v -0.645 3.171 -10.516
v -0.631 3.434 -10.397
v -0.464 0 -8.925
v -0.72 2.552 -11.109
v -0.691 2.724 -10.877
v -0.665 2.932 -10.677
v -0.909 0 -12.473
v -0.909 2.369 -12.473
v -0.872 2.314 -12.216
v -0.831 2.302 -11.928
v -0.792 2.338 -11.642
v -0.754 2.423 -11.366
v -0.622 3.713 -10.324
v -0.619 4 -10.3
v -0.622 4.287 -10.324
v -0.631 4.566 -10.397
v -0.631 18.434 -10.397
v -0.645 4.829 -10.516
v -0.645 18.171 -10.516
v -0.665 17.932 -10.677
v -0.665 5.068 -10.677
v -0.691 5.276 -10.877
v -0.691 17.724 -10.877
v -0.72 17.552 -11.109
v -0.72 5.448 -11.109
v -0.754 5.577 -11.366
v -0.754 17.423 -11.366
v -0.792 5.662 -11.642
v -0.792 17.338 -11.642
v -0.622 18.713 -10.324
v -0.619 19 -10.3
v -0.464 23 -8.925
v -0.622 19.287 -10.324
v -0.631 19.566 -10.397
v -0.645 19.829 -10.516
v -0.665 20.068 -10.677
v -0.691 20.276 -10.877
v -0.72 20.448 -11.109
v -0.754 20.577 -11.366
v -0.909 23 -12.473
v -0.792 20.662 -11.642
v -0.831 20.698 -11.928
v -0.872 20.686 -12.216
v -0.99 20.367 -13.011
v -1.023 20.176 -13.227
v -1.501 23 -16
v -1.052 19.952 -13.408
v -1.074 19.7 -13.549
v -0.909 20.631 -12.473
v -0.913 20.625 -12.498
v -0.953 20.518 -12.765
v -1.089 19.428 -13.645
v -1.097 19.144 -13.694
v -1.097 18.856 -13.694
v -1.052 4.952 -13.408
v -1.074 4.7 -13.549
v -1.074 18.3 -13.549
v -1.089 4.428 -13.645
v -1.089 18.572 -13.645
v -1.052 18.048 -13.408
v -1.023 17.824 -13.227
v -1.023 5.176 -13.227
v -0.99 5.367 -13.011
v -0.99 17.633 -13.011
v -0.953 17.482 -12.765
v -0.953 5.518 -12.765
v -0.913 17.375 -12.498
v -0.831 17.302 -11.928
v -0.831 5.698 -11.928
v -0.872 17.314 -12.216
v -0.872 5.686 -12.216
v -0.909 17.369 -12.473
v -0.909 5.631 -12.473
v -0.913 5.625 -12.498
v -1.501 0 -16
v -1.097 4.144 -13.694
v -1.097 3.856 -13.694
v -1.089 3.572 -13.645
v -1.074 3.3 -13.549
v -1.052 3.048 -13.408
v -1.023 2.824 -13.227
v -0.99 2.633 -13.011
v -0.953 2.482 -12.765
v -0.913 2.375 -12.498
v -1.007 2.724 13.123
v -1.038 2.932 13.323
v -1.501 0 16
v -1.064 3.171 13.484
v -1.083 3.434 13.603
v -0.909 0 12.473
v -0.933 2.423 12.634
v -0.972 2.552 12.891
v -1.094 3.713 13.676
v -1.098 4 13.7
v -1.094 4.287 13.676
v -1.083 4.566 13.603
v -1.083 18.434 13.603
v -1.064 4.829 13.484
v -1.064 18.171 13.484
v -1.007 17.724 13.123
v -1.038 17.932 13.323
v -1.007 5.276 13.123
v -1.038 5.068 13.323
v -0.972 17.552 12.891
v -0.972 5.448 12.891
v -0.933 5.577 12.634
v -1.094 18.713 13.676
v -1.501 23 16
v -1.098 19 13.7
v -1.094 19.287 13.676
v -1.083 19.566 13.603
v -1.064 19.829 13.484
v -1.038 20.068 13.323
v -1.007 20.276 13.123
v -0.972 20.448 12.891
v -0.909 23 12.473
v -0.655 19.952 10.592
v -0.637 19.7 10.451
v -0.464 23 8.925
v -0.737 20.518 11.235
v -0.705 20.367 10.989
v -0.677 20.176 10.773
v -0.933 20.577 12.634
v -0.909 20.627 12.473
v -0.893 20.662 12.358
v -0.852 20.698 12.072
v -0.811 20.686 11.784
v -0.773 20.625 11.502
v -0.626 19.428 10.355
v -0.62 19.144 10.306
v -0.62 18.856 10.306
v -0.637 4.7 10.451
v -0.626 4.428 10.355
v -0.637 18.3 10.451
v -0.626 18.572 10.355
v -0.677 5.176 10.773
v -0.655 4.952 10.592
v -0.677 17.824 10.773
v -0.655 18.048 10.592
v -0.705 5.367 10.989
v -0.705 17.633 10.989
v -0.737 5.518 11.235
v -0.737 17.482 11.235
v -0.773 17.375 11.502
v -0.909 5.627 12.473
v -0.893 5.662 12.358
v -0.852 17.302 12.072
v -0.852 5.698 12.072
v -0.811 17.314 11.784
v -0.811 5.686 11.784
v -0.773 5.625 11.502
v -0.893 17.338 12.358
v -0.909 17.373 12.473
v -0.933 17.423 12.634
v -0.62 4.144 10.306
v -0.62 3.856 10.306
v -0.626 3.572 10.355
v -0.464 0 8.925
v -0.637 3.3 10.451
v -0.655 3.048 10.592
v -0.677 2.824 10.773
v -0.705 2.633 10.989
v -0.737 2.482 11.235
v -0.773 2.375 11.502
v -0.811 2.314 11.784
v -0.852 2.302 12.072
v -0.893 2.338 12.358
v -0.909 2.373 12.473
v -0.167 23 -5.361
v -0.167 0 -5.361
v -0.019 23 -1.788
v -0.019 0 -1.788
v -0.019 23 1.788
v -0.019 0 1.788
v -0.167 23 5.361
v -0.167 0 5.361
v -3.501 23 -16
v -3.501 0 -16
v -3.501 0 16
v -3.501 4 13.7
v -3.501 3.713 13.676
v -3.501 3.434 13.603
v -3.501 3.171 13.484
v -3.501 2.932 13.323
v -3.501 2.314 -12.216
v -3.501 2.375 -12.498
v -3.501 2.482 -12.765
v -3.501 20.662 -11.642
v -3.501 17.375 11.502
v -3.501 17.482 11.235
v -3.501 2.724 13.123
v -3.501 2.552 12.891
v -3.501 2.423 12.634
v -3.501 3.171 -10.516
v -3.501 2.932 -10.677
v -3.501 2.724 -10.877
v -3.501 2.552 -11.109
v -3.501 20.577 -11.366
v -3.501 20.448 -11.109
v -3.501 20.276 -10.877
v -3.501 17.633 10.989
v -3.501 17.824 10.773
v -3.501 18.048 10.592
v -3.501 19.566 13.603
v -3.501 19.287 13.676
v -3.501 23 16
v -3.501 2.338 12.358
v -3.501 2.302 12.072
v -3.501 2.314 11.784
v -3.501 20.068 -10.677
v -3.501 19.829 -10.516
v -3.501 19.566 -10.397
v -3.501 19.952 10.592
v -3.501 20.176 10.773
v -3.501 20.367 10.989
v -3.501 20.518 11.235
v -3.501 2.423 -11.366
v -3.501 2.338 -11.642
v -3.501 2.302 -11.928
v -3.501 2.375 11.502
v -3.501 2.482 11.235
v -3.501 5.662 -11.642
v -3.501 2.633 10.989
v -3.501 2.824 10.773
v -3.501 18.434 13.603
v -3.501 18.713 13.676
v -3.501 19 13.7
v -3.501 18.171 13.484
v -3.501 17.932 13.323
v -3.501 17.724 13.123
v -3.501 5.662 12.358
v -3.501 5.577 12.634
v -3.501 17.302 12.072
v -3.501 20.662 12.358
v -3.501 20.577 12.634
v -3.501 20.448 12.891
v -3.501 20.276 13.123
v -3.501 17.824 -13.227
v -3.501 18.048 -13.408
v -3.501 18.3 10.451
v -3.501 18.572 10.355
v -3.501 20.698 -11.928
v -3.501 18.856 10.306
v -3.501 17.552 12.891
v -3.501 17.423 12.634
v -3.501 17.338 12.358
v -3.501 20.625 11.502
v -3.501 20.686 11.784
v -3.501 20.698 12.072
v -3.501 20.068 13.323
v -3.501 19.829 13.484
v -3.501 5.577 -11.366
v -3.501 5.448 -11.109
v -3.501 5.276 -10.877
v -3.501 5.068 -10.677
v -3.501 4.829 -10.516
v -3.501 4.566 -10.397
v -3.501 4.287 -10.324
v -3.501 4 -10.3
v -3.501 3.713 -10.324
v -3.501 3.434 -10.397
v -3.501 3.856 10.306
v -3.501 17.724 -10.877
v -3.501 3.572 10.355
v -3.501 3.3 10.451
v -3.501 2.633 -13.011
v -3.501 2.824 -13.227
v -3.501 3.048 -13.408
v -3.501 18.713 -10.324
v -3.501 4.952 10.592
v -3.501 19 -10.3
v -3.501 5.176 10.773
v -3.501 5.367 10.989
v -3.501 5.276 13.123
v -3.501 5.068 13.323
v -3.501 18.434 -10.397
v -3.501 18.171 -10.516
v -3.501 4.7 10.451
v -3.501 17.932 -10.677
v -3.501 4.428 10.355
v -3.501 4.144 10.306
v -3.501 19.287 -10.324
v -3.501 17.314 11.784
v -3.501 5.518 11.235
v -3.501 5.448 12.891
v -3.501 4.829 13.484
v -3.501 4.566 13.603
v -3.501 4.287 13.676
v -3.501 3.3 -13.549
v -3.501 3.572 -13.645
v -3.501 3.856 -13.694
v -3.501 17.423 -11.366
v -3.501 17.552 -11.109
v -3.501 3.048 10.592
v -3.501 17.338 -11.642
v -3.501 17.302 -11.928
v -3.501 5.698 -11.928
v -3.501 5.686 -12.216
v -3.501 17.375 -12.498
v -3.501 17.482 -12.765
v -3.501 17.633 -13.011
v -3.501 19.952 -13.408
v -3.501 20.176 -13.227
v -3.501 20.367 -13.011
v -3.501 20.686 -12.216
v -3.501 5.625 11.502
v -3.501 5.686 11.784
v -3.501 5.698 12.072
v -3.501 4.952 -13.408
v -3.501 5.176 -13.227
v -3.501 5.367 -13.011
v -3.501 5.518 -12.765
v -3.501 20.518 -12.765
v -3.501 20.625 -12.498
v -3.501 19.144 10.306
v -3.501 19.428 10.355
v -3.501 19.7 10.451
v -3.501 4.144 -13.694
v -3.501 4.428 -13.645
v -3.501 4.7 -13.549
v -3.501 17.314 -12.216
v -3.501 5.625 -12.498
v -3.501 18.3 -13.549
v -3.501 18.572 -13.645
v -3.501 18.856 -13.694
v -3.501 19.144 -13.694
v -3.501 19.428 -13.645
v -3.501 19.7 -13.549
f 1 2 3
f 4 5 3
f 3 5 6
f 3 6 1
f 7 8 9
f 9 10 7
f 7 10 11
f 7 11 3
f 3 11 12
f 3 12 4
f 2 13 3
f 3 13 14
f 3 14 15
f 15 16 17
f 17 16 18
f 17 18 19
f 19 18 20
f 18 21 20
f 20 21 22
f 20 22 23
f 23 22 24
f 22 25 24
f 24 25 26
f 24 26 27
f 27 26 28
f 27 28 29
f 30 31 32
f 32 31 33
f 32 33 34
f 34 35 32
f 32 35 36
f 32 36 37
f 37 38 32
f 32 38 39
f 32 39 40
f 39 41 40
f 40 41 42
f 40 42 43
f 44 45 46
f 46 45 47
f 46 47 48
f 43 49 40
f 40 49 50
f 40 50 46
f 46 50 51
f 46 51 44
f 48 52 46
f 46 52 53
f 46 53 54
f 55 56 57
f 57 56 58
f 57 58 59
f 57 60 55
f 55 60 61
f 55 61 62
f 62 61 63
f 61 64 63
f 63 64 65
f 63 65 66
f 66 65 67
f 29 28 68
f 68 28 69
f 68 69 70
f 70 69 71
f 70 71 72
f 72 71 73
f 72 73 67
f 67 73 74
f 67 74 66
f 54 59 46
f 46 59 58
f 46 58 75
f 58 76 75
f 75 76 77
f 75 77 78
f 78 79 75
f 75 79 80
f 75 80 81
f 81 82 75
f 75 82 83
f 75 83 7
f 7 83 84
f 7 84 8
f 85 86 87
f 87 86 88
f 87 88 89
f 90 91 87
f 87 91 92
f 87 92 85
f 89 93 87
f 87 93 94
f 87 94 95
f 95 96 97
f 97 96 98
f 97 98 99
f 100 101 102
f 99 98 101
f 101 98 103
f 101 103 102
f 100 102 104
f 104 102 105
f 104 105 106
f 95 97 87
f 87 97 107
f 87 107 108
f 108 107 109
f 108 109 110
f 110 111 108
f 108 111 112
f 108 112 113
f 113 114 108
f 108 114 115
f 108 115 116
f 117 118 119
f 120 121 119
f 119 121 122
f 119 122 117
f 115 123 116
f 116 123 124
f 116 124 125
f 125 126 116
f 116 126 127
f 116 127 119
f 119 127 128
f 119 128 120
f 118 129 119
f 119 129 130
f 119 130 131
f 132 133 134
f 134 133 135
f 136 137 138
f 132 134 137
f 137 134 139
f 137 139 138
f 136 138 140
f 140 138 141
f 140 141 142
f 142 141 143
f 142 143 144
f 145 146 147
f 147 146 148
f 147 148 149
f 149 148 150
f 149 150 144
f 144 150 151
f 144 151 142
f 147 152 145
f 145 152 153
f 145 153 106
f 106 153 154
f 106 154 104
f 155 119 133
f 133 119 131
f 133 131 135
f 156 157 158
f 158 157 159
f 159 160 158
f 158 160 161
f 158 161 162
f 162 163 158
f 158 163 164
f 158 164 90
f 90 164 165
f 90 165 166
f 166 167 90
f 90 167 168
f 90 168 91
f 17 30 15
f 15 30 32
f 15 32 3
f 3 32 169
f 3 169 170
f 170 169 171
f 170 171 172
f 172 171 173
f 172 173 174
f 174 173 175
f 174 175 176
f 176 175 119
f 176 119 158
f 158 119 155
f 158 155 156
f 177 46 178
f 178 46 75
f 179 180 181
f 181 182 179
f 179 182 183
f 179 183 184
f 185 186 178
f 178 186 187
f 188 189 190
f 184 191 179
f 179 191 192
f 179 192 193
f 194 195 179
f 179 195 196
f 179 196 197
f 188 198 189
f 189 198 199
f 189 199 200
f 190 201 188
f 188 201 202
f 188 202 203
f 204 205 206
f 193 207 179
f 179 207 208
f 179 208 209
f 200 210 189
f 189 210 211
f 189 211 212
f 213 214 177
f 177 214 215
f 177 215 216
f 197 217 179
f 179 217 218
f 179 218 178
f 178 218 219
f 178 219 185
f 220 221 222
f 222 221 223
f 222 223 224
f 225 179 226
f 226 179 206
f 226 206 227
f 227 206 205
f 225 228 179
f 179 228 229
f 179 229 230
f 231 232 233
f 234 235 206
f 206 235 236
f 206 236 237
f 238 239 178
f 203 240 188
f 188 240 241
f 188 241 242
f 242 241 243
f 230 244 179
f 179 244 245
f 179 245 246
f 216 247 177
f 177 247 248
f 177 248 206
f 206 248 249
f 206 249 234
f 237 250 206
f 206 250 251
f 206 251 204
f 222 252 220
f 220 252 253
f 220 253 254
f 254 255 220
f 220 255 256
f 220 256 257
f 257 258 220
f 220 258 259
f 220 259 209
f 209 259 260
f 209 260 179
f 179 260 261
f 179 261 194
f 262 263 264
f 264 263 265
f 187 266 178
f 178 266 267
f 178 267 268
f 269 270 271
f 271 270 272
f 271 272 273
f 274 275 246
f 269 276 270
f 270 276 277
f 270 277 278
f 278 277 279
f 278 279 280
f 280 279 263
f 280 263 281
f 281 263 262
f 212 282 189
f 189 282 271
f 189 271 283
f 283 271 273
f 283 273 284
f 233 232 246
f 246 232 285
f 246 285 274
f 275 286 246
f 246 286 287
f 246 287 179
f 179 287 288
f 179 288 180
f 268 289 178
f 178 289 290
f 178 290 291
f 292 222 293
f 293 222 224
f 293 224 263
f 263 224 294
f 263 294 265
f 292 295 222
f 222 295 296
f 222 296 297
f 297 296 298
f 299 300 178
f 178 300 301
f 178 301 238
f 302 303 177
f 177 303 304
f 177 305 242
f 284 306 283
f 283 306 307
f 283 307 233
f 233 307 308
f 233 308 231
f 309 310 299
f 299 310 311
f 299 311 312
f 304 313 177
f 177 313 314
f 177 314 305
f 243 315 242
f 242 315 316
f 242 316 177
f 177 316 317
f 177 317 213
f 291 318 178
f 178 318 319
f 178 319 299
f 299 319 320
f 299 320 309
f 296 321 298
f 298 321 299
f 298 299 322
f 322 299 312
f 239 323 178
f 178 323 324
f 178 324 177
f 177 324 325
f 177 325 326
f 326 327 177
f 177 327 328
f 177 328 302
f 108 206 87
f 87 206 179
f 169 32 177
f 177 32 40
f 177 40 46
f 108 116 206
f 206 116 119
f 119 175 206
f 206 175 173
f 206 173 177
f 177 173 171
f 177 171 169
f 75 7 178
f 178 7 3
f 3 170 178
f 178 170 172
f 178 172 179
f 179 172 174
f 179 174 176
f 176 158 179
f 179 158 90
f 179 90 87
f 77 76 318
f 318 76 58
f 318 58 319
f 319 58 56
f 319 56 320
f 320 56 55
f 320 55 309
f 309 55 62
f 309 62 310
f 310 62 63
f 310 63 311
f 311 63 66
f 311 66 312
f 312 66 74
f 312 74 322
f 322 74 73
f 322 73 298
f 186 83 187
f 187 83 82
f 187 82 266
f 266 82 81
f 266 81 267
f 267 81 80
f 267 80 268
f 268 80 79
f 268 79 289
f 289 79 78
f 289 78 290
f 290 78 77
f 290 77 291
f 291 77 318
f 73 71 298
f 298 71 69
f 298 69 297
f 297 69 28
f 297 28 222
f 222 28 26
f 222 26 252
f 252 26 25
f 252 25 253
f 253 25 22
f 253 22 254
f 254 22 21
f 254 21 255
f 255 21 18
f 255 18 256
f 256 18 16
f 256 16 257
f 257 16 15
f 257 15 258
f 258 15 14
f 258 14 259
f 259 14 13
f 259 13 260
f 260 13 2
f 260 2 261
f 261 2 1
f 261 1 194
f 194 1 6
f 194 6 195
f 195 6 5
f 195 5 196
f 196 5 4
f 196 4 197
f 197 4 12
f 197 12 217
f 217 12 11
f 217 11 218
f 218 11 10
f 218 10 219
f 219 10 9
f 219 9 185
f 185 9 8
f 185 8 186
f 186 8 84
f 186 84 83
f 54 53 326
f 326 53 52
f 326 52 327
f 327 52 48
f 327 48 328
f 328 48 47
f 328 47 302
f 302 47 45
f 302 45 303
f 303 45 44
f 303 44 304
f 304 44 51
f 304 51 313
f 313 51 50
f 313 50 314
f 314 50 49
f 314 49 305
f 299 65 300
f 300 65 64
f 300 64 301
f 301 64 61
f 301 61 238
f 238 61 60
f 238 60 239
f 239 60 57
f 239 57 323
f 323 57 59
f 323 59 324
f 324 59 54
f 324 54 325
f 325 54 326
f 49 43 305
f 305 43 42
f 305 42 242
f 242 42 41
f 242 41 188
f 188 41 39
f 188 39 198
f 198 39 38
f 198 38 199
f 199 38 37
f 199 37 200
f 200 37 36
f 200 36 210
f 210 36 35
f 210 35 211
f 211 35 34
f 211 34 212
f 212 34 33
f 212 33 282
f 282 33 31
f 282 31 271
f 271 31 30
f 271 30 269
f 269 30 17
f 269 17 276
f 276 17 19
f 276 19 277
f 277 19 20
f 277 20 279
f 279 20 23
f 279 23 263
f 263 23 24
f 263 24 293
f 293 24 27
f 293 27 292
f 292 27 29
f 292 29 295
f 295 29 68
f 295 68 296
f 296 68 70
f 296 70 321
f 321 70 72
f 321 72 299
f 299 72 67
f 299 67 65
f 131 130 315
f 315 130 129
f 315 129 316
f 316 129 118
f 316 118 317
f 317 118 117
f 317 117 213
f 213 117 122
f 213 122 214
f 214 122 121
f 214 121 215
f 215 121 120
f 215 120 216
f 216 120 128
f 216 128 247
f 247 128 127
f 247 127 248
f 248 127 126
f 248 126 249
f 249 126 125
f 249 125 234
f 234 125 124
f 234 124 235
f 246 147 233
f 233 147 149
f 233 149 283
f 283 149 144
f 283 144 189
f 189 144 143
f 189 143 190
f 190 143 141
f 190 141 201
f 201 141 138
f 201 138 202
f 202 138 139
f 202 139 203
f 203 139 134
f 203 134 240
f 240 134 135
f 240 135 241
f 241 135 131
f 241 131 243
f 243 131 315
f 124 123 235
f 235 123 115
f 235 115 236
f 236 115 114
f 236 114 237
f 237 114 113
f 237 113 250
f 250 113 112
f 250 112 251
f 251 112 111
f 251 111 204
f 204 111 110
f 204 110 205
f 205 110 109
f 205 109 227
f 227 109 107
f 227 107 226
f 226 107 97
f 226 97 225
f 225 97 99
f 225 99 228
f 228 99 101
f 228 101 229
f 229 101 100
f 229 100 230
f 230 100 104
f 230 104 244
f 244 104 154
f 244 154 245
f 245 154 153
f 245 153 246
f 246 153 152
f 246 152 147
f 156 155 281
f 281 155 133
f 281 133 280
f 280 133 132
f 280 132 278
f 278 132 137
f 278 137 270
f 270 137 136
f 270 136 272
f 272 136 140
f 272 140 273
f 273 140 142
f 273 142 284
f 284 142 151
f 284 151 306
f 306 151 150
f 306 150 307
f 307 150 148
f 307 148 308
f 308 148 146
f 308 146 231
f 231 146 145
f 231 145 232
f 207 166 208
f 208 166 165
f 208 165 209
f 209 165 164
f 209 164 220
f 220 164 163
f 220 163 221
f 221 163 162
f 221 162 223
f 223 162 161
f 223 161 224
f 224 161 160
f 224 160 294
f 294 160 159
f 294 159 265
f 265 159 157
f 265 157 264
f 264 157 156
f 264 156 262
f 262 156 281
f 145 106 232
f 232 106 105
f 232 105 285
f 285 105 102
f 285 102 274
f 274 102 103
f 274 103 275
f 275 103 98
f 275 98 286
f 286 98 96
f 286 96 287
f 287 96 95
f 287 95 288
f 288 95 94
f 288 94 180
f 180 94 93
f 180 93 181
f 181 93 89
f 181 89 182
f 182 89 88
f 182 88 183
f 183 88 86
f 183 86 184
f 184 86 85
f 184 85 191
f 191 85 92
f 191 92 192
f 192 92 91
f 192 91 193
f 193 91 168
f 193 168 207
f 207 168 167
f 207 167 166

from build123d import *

# Parameters (mm, degrees)
EXTRUDE_1_DEPTH     = 23
CUT_EXTRUDE_1_DEPTH = 29.235799215


with BuildPart() as part:
    # Эскиз1 → Бобышка-Вытянуть1 (new body)
    with BuildSketch(Plane(origin=(0, 0, 0), x_dir=(1, 0, 0), z_dir=(0, 1, 0))):
        with BuildLine():
            Line((-1.501479303, 16), (-3.501479303, 16))
            Line((-3.501479303, 16), (-3.501479303, -16))
            Line((-3.501479303, -16), (-1.501479303, -16))
            ThreePointArc((-1.501479303, -16), (0, 0), (-1.501479303, 16))
        make_face()
    extrude(amount=EXTRUDE_1_DEPTH)

    # Эскиз2 → Вырез-Вытянуть1 (cut, through all)
    with BuildSketch(Plane.ZY.offset(3.501479303)):
        with BuildLine():
            ThreePointArc((-10.3, 4), (-10.797918472, 5.202081528), (-12, 5.7))
            Line((-12, 5.7), (-12, 4))
            Line((-12, 4), (-10.3, 4))
        make_face()
        with BuildLine():
            Line((-12, 4), (-12, 5.7))
            ThreePointArc((-12, 5.7), (-13.202081528, 2.797918472), (-10.3, 4))
            Line((-10.3, 4), (-12, 4))
        make_face()
        with BuildLine():
            Line((-12, 17.3), (-12, 19))
            Line((-12, 19), (-10.3, 19))
            ThreePointArc((-10.3, 19), (-13.202081528, 20.202081528), (-12, 17.3))
        make_face()
        with BuildLine():
            Line((-10.3, 19), (-12, 19))
            Line((-12, 19), (-12, 17.3))
            ThreePointArc((-12, 17.3), (-10.797918472, 17.797918472), (-10.3, 19))
        make_face()
        with BuildLine():
            ThreePointArc((13.7, 19), (12, 20.7), (10.3, 19))
            Line((10.3, 19), (12, 19))
            Line((12, 19), (12, 17.3))
            ThreePointArc((12, 17.3), (13.202081528, 17.797918472), (13.7, 19))
        make_face()
        with BuildLine():
            Line((12, 19), (10.3, 19))
            ThreePointArc((10.3, 19), (10.797918472, 17.797918472), (12, 17.3))
            Line((12, 17.3), (12, 19))
        make_face()
        with BuildLine():
            ThreePointArc((13.7, 4), (13.202081528, 5.202081528), (12, 5.7))
            Line((12, 5.7), (12, 4))
            Line((12, 4), (10.3, 4))
            ThreePointArc((10.3, 4), (12, 2.3), (13.7, 4))
        make_face()
        with BuildLine():
            Line((12, 4), (12, 5.7))
            ThreePointArc((12, 5.7), (10.797918472, 5.202081528), (10.3, 4))
            Line((10.3, 4), (12, 4))
        make_face()
    extrude(amount=-CUT_EXTRUDE_1_DEPTH, mode=Mode.SUBTRACT)


solid = part.part
